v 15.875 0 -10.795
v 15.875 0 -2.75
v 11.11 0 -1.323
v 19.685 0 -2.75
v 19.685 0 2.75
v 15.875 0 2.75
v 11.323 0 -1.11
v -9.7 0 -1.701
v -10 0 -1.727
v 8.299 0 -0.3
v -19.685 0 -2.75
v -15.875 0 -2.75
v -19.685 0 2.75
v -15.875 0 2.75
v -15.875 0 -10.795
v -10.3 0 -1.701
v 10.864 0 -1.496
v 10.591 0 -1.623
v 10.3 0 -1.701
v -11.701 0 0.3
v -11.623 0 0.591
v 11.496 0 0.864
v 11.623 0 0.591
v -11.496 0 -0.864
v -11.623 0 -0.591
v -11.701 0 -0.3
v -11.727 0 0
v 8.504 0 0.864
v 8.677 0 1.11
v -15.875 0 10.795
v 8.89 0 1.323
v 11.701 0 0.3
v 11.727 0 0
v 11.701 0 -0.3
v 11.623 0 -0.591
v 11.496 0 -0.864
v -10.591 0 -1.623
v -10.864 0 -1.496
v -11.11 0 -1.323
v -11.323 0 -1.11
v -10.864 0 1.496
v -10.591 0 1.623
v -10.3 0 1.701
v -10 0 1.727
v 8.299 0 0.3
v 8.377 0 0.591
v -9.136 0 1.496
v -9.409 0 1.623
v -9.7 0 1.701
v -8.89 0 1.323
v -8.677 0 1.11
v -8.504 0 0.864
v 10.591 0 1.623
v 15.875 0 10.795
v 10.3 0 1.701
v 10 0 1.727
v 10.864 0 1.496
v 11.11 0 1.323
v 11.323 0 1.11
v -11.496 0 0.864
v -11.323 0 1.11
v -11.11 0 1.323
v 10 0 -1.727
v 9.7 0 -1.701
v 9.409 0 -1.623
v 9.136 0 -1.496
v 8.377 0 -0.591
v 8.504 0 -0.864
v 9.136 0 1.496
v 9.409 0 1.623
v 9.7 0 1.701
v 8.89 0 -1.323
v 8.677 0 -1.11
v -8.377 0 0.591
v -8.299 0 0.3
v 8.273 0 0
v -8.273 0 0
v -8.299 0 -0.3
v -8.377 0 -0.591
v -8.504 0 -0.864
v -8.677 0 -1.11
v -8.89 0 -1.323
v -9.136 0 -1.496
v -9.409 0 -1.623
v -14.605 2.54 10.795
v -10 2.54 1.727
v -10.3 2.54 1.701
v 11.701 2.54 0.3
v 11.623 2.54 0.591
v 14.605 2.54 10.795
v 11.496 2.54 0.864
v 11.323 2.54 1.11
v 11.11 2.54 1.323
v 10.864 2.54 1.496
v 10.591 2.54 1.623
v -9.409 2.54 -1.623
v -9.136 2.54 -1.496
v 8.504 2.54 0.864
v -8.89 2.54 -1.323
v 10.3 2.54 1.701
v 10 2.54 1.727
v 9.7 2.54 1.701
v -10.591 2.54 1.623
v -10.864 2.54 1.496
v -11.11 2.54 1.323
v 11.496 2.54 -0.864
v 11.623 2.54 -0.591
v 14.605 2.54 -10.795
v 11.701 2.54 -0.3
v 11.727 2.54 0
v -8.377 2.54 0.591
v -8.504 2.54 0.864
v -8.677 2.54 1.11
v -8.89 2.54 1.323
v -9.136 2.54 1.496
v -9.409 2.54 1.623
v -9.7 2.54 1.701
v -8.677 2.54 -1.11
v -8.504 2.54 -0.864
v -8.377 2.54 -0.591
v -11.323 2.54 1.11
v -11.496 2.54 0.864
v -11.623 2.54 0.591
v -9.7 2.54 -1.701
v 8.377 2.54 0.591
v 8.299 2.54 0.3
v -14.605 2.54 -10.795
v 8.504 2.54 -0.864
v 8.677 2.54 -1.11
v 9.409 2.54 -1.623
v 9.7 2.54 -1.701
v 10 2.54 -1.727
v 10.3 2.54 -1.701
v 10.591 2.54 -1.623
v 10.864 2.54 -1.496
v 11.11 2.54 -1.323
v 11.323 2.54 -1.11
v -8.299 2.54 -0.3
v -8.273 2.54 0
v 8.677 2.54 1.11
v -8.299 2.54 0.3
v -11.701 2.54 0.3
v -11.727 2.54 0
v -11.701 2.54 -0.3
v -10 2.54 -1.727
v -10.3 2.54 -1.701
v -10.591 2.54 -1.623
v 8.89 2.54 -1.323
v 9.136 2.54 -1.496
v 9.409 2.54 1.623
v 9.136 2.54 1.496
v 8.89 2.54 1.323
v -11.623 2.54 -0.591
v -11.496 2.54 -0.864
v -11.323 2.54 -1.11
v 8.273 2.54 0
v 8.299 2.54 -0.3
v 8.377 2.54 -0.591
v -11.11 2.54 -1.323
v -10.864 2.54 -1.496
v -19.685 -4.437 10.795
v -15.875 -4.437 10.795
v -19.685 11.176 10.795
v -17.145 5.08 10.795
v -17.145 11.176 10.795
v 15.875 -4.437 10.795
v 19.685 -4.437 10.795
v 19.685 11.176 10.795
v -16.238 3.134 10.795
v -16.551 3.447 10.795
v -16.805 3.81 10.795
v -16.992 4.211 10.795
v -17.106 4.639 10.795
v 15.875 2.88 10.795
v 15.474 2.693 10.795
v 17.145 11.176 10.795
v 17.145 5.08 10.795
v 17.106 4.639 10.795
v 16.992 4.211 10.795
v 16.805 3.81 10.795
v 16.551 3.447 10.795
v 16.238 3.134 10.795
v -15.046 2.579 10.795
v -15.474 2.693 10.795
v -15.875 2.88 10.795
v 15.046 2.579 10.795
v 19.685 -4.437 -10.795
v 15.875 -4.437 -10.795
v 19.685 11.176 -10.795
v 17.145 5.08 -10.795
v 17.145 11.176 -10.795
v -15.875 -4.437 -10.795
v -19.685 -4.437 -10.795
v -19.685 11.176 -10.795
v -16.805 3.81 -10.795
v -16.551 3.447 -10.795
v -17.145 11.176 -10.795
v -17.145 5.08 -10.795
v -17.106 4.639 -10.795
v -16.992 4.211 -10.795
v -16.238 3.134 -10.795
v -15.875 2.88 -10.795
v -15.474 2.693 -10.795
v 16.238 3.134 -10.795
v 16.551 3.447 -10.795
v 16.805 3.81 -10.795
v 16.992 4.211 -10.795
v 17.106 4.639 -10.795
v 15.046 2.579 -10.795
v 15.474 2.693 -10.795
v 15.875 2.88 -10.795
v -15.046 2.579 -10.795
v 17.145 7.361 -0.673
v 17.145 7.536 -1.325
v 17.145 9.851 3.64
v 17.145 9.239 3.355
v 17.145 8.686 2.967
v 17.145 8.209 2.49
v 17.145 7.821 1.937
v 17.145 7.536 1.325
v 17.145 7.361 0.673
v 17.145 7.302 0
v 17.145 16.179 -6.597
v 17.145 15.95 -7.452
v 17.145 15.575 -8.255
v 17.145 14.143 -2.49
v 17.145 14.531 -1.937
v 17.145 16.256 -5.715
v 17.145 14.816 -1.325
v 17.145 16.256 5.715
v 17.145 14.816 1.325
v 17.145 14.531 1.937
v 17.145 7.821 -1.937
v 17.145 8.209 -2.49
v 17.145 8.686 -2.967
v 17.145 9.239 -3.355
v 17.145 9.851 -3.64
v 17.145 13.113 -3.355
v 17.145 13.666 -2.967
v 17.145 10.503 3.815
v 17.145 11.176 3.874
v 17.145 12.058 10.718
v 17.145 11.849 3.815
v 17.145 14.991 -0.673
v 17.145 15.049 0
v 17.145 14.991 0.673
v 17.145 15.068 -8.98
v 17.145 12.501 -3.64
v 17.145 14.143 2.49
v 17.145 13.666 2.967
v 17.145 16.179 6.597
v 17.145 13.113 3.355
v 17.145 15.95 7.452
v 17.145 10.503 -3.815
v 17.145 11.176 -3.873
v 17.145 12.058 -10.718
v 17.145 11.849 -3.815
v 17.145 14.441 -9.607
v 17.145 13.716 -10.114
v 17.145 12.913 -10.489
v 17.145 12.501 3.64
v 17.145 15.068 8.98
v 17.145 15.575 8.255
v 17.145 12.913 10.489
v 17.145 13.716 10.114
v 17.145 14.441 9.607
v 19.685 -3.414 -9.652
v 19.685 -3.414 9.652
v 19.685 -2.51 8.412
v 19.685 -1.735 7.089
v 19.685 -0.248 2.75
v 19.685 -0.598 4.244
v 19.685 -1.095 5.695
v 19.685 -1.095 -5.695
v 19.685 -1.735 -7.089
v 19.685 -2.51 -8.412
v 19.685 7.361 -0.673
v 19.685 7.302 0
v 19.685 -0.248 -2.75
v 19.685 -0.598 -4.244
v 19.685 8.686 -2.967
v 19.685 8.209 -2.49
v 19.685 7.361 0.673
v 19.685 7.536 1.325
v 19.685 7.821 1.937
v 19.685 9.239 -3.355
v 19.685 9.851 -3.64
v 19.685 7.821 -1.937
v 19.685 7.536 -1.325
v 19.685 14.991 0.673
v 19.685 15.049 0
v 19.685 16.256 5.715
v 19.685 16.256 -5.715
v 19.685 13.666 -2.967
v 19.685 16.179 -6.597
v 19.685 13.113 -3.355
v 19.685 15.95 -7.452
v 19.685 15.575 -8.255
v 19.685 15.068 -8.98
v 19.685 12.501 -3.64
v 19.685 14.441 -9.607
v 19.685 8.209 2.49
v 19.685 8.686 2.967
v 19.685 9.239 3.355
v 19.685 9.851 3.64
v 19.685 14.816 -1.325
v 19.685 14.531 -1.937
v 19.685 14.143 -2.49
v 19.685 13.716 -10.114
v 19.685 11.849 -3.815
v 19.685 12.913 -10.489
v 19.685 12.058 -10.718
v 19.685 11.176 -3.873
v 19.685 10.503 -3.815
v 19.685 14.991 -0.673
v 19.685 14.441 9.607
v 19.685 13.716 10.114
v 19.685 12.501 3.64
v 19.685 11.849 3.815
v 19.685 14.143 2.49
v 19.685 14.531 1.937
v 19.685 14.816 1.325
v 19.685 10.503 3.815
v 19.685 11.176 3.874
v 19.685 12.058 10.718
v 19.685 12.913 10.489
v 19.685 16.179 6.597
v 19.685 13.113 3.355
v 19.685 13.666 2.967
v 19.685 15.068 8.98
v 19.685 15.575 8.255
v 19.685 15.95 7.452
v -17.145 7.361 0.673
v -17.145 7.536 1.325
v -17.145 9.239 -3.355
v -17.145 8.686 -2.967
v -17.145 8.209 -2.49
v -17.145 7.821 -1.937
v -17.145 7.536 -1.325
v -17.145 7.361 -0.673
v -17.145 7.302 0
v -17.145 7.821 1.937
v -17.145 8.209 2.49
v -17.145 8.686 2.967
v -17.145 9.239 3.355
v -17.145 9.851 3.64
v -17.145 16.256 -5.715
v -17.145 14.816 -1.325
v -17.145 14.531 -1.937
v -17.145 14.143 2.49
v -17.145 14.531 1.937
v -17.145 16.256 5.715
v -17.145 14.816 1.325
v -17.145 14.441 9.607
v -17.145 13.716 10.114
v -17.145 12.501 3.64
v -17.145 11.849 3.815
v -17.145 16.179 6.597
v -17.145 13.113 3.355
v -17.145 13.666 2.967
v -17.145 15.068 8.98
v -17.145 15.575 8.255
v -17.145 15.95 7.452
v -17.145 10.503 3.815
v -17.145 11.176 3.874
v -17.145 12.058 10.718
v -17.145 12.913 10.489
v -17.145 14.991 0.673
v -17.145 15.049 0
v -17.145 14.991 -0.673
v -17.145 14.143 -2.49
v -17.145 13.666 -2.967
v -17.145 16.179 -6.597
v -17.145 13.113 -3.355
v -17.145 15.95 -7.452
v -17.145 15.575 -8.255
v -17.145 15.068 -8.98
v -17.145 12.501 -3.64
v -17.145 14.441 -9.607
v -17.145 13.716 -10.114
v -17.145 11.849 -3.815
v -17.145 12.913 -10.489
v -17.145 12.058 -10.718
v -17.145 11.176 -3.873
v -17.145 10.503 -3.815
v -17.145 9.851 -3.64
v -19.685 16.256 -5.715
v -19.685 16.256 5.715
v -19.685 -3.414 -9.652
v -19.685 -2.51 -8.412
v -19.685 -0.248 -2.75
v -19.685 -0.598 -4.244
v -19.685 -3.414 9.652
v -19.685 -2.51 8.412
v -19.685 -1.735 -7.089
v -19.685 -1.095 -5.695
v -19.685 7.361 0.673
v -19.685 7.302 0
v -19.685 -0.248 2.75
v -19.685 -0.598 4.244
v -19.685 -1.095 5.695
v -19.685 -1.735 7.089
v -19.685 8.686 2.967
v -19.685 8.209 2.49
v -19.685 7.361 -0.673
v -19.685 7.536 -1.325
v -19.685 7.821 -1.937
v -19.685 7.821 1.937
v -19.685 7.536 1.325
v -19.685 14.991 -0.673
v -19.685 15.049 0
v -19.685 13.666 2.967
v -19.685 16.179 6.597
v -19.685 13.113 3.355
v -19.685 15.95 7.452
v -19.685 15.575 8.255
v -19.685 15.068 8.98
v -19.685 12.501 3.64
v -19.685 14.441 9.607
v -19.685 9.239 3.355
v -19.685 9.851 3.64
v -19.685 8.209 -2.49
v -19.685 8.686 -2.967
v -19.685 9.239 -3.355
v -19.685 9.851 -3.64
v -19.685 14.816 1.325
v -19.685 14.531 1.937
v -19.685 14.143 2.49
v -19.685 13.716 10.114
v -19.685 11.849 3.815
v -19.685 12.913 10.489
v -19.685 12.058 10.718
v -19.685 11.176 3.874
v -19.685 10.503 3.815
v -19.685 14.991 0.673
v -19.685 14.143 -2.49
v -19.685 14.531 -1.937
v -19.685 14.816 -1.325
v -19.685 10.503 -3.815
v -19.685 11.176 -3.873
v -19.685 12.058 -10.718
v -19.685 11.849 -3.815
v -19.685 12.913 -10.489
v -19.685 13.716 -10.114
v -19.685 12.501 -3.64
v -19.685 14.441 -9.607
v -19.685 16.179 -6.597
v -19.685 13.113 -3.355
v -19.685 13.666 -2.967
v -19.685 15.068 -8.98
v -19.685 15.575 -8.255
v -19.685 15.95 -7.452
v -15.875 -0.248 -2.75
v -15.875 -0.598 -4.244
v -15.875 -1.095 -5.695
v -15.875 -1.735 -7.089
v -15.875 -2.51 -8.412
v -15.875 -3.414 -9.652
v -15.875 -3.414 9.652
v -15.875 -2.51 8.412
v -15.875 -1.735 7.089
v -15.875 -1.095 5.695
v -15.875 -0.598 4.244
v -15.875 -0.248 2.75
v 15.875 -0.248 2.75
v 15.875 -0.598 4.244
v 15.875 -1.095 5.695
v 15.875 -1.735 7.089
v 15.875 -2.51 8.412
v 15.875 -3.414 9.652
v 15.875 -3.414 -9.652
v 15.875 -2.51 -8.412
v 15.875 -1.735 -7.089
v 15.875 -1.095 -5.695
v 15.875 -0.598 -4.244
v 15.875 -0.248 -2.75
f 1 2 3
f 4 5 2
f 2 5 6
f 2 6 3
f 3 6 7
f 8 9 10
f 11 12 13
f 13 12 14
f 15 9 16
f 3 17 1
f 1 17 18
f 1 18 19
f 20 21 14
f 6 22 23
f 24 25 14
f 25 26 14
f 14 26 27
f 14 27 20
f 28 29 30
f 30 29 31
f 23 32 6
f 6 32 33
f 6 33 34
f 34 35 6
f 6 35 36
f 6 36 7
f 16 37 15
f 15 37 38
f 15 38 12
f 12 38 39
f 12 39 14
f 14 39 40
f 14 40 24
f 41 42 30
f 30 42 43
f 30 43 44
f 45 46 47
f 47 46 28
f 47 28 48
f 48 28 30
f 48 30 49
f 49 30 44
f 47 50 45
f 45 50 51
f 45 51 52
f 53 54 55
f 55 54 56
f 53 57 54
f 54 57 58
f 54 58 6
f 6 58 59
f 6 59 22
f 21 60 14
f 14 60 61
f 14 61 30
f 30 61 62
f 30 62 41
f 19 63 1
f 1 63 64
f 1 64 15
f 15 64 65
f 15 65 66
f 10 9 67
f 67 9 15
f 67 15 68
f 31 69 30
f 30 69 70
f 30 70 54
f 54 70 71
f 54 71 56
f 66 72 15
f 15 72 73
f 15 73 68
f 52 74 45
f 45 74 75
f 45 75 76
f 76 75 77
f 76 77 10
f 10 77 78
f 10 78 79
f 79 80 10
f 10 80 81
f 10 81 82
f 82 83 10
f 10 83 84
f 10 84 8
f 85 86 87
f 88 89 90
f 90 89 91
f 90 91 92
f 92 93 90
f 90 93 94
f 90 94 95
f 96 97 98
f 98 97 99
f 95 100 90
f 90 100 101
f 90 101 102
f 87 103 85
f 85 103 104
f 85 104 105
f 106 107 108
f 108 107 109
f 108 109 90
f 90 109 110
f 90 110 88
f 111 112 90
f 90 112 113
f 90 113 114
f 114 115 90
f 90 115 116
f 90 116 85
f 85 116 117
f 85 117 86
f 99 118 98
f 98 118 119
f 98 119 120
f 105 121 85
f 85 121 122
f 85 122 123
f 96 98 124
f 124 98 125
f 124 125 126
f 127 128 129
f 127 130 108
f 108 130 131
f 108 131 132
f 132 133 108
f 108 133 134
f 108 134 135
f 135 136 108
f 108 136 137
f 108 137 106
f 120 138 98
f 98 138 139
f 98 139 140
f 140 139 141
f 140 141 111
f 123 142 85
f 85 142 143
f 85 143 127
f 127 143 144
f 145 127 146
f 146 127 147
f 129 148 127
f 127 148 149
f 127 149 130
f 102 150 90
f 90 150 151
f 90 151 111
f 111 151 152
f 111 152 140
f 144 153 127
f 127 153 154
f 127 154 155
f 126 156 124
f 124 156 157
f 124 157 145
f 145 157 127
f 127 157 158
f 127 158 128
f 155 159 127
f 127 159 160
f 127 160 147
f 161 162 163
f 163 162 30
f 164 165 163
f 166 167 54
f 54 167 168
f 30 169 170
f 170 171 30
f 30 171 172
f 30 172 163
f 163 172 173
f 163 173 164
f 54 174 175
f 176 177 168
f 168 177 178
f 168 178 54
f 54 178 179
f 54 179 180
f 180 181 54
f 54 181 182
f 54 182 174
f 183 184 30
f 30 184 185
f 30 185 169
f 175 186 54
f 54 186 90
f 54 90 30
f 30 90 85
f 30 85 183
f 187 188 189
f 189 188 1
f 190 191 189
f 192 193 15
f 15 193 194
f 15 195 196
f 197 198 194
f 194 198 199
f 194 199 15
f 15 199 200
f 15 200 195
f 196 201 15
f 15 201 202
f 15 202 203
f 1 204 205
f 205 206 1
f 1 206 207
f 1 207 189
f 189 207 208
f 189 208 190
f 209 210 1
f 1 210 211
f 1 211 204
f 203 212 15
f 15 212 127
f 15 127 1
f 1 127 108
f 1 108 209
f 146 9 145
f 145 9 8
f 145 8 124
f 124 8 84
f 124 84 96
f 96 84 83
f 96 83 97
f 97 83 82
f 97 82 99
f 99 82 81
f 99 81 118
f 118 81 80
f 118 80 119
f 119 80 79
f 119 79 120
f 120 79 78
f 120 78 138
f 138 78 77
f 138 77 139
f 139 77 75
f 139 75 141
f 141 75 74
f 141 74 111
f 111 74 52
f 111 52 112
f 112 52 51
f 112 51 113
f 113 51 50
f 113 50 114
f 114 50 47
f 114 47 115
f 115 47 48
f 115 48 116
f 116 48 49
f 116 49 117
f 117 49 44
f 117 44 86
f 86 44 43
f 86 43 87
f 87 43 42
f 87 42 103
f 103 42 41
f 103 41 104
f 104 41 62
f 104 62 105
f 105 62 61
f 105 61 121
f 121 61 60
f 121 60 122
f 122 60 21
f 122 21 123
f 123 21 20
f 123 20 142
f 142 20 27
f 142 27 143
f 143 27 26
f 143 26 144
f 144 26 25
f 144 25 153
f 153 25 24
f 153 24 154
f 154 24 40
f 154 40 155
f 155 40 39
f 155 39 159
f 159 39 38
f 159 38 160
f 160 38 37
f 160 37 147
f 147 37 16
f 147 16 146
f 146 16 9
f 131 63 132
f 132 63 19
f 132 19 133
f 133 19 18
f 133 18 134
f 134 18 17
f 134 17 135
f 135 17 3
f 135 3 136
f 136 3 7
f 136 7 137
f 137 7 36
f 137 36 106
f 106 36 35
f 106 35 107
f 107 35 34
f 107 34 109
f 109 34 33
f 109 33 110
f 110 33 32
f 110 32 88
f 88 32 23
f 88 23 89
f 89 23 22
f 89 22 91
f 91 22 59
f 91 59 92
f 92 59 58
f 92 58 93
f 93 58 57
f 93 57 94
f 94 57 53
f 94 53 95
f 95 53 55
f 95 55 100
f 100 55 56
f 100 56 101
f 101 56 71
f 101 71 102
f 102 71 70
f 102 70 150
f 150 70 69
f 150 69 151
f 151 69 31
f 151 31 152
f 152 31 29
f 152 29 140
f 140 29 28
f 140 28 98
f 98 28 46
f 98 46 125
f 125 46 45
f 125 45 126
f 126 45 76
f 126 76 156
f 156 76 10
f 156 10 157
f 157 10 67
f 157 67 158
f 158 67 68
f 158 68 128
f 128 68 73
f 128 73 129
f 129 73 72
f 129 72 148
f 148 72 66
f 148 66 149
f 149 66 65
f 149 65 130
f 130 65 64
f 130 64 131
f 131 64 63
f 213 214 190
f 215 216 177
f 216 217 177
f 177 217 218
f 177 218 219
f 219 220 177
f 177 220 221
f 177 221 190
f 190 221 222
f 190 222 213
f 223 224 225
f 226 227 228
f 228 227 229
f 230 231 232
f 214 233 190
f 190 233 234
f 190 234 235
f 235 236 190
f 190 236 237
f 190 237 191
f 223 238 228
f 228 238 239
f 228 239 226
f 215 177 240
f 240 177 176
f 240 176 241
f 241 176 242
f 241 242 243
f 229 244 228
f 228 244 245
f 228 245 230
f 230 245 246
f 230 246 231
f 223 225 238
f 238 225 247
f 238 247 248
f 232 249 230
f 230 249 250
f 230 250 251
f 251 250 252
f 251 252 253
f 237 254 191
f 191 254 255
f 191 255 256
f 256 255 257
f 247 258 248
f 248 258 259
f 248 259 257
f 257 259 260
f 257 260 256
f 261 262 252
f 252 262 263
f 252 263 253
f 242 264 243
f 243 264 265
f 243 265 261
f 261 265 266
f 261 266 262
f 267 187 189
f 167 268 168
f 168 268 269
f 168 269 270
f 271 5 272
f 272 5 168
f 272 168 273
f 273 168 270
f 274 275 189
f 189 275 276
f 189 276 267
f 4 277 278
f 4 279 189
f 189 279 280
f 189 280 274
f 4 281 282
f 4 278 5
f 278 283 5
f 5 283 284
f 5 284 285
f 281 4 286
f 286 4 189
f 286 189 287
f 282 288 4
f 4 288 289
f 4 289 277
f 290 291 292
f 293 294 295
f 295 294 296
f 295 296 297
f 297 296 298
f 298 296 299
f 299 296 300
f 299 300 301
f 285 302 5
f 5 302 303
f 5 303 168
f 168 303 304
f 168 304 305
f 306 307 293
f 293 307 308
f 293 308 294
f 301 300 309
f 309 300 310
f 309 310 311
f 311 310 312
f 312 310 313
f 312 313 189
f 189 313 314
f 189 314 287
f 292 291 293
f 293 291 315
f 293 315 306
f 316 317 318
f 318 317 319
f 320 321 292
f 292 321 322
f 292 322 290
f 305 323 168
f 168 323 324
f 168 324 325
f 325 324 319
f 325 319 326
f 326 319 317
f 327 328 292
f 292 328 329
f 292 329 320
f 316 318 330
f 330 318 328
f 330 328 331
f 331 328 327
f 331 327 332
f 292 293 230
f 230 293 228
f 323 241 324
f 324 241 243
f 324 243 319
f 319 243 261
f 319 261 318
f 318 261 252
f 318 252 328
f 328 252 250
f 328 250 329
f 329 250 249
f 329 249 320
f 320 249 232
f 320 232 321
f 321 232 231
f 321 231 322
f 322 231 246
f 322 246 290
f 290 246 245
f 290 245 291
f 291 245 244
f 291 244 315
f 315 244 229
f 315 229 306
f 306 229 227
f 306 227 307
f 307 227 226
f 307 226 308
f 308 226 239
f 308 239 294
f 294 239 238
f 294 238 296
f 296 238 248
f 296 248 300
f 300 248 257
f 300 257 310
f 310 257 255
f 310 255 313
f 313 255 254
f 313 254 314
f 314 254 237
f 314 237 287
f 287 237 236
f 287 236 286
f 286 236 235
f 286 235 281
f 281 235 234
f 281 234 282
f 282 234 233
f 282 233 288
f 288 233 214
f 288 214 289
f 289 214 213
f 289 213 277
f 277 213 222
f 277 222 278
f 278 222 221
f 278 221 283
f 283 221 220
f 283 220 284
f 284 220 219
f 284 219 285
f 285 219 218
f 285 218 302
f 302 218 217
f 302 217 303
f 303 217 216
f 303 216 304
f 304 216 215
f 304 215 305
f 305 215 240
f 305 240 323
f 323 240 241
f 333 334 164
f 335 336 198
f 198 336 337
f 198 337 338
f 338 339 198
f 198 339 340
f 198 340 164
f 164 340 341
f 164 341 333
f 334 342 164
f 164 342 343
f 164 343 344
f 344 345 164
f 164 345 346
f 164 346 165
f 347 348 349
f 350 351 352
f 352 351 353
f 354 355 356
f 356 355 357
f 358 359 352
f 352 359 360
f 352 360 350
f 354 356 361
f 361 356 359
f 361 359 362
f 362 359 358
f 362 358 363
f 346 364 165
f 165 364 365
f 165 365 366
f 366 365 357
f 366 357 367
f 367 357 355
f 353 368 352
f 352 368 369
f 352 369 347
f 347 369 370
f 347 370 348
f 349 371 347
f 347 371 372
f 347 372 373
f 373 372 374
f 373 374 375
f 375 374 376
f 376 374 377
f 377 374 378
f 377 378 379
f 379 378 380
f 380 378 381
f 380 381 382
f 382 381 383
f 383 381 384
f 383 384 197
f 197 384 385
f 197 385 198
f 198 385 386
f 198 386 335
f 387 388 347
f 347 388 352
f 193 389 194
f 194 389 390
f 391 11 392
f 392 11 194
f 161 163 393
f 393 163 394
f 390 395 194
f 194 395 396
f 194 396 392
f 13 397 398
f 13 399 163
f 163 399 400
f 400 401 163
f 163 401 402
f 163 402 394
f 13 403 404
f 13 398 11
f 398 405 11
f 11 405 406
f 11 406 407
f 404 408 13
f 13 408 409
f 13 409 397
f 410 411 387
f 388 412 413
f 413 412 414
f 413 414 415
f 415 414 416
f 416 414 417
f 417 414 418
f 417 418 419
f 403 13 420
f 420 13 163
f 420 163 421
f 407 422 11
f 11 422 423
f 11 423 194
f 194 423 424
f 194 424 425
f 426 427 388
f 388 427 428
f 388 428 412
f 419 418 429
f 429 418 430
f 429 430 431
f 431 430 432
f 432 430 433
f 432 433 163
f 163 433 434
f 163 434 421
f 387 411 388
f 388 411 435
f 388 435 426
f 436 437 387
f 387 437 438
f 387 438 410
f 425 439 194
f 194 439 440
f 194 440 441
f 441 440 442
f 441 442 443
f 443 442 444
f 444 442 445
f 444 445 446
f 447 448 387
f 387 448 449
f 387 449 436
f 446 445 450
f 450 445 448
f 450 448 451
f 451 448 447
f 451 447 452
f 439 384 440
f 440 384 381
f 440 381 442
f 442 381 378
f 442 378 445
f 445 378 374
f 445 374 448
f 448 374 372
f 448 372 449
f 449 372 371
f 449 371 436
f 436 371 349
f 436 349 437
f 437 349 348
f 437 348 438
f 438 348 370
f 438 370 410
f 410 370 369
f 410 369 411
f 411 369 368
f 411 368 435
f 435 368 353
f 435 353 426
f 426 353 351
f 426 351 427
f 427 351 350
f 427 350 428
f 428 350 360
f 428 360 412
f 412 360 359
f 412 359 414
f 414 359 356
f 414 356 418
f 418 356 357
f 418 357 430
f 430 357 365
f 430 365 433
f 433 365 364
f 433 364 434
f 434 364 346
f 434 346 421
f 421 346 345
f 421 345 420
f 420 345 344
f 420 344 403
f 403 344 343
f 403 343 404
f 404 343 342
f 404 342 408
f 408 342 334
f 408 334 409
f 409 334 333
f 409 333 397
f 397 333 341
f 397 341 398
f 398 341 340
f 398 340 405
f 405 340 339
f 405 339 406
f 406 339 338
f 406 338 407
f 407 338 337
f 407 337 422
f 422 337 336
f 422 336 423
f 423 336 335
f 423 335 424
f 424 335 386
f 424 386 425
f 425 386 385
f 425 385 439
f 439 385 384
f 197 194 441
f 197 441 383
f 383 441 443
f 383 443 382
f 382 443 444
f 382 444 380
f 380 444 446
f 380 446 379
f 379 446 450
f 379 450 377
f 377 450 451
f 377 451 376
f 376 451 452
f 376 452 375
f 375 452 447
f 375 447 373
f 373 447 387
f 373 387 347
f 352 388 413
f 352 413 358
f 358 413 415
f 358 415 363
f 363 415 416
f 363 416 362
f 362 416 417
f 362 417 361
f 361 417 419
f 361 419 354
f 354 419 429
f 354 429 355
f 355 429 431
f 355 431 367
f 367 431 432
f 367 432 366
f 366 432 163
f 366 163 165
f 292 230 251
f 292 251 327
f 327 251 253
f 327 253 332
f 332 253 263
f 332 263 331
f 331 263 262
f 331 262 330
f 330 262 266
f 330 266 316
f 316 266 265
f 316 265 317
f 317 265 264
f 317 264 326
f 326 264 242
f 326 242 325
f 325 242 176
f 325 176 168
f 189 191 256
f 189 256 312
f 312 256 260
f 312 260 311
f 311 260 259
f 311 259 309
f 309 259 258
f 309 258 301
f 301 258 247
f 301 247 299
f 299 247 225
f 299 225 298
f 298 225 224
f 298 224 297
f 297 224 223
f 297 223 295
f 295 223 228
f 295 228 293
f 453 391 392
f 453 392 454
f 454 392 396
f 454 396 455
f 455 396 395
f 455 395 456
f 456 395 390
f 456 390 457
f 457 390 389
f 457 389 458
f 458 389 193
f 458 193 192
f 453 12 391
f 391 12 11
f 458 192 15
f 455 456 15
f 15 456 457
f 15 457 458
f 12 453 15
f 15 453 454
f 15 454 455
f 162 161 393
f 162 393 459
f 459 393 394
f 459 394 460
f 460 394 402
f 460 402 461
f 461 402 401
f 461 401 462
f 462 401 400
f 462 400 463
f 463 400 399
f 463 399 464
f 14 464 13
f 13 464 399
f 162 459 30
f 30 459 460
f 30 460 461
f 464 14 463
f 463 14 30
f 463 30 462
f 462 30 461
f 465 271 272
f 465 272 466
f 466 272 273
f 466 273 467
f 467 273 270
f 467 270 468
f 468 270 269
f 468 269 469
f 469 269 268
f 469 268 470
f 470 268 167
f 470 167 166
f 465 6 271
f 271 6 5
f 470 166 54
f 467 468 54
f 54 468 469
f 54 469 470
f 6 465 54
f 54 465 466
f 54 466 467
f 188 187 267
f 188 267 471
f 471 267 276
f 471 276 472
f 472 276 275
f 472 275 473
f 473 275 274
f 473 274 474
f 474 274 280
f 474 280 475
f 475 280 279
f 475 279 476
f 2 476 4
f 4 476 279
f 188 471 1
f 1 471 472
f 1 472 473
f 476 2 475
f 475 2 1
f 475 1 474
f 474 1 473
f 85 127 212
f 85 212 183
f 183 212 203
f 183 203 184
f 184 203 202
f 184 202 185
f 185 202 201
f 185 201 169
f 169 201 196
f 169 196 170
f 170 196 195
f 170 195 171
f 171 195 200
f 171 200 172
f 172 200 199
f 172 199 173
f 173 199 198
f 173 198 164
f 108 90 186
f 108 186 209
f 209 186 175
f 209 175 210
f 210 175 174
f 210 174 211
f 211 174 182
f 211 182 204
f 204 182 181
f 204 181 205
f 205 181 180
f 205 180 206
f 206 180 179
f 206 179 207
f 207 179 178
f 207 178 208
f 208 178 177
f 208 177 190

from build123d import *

# Parameters (mm, degrees)
SKETCH1_W            = 34.29
SKETCH1_H            = 21.59
SKETCH1_R            = 1.7272
BOSS_EXTRUDE1_DEPTH  = 2.54
SKETCH2_W            = 21.59
SKETCH2_H            = 16.256
SKETCH2_R            = 3.8735
BOSS_EXTRUDE2_DEPTH  = 2.54
FILLET1_R            = 5.08
BOSS_EXTRUDE5_DEPTH  = 3.81
MIRROR4_COPY_1_DEPTH = 3.81
FILLET3_R            = 2.54


with BuildPart() as part:
    # Sketch1 → Boss-Extrude1 (new body)
    with BuildSketch(Plane(origin=(0, 0, 0), x_dir=(1, 0, 0), z_dir=(0, 1, 0))):
        Rectangle(SKETCH1_W, SKETCH1_H)
        with Locations(Location((-10, 0, 0), (0, 0, 270))):
            Circle(SKETCH1_R, mode=Mode.SUBTRACT)
        with Locations(Location((10, 0, 0), (0, 0, 270))):
            Circle(SKETCH1_R, mode=Mode.SUBTRACT)
    extrude(amount=BOSS_EXTRUDE1_DEPTH)

    # Sketch2 → Boss-Extrude2 (add)
    with BuildSketch(Plane(origin=(17.145, 0, 0), x_dir=(0, 0, -1), z_dir=(1, 0, 0))):
        with Locations((0, 8.128)):
            Rectangle(SKETCH2_W, SKETCH2_H)
        with Locations((0, 11.176)):
            Circle(SKETCH2_R, mode=Mode.SUBTRACT)
    boss_extrude2 = extrude(amount=BOSS_EXTRUDE2_DEPTH)

    # Mirror1: Boss-Extrude2 across plane
    add(boss_extrude2.mirror(Plane(origin=(0, 0, 0), x_dir=(0, 0, 1), z_dir=(1, 0, 0))))

    # Fillet1
    fillet1_edges = [part.edges().sort_by_distance(p)[0] for p in [
        (-18.415, 16.256, -10.795),
        (-18.415, 16.256, 10.795),
        (18.415, 16.256, 10.795),
        (18.415, 16.256, -10.795),
    ]]
    fillet(fillet1_edges, radius=FILLET1_R)

    # Sketch11 → Boss-Extrude5 (add)
    with BuildSketch(Plane.ZY.offset(19.685)):
        with BuildLine():
            Line((-10.795, 0), (-10.795, -4.437141758))
            ThreePointArc((-10.795, -4.437141758), (-7.088953516, -1.734962797), (-2.75, -0.248344462))
            Line((-2.75, -0.248344462), (-2.75, 0))
            Line((-2.75, 0), (-10.795, 0))
        make_face()
    boss_extrude5 = extrude(amount=-BOSS_EXTRUDE5_DEPTH)

    # Mirror3: Boss-Extrude5 across plane
    add(boss_extrude5.mirror(Plane.XY))

    # Mirror4: Boss-Extrude5 across plane
    add(boss_extrude5.mirror(Plane(origin=(0, 0, 0), x_dir=(0, 0, 1), z_dir=(1, 0, 0))))

    # Mirror4 copy 1 sketch → Mirror4 copy 1 (add)
    with BuildSketch(Plane(origin=(19.685, 0, 0), x_dir=(0, 0, -1), z_dir=(1, 0, 0))):
        with BuildLine():
            Line((-10.795, 0), (-10.795, -4.437141758))
            ThreePointArc((-10.795, -4.437141758), (-7.088953516, -1.734962797), (-2.75, -0.248344462))
            Line((-2.75, -0.248344462), (-2.75, 0))
            Line((-2.75, 0), (-10.795, 0))
        make_face()
    extrude(amount=-MIRROR4_COPY_1_DEPTH)

    # Fillet3
    fillet3_edges = [part.edges().sort_by_distance(p)[0] for p in [
        (-17.145, 2.54, 0),
        (17.145, 2.54, 0),
    ]]
    fillet(fillet3_edges, radius=FILLET3_R)


solid = part.part
